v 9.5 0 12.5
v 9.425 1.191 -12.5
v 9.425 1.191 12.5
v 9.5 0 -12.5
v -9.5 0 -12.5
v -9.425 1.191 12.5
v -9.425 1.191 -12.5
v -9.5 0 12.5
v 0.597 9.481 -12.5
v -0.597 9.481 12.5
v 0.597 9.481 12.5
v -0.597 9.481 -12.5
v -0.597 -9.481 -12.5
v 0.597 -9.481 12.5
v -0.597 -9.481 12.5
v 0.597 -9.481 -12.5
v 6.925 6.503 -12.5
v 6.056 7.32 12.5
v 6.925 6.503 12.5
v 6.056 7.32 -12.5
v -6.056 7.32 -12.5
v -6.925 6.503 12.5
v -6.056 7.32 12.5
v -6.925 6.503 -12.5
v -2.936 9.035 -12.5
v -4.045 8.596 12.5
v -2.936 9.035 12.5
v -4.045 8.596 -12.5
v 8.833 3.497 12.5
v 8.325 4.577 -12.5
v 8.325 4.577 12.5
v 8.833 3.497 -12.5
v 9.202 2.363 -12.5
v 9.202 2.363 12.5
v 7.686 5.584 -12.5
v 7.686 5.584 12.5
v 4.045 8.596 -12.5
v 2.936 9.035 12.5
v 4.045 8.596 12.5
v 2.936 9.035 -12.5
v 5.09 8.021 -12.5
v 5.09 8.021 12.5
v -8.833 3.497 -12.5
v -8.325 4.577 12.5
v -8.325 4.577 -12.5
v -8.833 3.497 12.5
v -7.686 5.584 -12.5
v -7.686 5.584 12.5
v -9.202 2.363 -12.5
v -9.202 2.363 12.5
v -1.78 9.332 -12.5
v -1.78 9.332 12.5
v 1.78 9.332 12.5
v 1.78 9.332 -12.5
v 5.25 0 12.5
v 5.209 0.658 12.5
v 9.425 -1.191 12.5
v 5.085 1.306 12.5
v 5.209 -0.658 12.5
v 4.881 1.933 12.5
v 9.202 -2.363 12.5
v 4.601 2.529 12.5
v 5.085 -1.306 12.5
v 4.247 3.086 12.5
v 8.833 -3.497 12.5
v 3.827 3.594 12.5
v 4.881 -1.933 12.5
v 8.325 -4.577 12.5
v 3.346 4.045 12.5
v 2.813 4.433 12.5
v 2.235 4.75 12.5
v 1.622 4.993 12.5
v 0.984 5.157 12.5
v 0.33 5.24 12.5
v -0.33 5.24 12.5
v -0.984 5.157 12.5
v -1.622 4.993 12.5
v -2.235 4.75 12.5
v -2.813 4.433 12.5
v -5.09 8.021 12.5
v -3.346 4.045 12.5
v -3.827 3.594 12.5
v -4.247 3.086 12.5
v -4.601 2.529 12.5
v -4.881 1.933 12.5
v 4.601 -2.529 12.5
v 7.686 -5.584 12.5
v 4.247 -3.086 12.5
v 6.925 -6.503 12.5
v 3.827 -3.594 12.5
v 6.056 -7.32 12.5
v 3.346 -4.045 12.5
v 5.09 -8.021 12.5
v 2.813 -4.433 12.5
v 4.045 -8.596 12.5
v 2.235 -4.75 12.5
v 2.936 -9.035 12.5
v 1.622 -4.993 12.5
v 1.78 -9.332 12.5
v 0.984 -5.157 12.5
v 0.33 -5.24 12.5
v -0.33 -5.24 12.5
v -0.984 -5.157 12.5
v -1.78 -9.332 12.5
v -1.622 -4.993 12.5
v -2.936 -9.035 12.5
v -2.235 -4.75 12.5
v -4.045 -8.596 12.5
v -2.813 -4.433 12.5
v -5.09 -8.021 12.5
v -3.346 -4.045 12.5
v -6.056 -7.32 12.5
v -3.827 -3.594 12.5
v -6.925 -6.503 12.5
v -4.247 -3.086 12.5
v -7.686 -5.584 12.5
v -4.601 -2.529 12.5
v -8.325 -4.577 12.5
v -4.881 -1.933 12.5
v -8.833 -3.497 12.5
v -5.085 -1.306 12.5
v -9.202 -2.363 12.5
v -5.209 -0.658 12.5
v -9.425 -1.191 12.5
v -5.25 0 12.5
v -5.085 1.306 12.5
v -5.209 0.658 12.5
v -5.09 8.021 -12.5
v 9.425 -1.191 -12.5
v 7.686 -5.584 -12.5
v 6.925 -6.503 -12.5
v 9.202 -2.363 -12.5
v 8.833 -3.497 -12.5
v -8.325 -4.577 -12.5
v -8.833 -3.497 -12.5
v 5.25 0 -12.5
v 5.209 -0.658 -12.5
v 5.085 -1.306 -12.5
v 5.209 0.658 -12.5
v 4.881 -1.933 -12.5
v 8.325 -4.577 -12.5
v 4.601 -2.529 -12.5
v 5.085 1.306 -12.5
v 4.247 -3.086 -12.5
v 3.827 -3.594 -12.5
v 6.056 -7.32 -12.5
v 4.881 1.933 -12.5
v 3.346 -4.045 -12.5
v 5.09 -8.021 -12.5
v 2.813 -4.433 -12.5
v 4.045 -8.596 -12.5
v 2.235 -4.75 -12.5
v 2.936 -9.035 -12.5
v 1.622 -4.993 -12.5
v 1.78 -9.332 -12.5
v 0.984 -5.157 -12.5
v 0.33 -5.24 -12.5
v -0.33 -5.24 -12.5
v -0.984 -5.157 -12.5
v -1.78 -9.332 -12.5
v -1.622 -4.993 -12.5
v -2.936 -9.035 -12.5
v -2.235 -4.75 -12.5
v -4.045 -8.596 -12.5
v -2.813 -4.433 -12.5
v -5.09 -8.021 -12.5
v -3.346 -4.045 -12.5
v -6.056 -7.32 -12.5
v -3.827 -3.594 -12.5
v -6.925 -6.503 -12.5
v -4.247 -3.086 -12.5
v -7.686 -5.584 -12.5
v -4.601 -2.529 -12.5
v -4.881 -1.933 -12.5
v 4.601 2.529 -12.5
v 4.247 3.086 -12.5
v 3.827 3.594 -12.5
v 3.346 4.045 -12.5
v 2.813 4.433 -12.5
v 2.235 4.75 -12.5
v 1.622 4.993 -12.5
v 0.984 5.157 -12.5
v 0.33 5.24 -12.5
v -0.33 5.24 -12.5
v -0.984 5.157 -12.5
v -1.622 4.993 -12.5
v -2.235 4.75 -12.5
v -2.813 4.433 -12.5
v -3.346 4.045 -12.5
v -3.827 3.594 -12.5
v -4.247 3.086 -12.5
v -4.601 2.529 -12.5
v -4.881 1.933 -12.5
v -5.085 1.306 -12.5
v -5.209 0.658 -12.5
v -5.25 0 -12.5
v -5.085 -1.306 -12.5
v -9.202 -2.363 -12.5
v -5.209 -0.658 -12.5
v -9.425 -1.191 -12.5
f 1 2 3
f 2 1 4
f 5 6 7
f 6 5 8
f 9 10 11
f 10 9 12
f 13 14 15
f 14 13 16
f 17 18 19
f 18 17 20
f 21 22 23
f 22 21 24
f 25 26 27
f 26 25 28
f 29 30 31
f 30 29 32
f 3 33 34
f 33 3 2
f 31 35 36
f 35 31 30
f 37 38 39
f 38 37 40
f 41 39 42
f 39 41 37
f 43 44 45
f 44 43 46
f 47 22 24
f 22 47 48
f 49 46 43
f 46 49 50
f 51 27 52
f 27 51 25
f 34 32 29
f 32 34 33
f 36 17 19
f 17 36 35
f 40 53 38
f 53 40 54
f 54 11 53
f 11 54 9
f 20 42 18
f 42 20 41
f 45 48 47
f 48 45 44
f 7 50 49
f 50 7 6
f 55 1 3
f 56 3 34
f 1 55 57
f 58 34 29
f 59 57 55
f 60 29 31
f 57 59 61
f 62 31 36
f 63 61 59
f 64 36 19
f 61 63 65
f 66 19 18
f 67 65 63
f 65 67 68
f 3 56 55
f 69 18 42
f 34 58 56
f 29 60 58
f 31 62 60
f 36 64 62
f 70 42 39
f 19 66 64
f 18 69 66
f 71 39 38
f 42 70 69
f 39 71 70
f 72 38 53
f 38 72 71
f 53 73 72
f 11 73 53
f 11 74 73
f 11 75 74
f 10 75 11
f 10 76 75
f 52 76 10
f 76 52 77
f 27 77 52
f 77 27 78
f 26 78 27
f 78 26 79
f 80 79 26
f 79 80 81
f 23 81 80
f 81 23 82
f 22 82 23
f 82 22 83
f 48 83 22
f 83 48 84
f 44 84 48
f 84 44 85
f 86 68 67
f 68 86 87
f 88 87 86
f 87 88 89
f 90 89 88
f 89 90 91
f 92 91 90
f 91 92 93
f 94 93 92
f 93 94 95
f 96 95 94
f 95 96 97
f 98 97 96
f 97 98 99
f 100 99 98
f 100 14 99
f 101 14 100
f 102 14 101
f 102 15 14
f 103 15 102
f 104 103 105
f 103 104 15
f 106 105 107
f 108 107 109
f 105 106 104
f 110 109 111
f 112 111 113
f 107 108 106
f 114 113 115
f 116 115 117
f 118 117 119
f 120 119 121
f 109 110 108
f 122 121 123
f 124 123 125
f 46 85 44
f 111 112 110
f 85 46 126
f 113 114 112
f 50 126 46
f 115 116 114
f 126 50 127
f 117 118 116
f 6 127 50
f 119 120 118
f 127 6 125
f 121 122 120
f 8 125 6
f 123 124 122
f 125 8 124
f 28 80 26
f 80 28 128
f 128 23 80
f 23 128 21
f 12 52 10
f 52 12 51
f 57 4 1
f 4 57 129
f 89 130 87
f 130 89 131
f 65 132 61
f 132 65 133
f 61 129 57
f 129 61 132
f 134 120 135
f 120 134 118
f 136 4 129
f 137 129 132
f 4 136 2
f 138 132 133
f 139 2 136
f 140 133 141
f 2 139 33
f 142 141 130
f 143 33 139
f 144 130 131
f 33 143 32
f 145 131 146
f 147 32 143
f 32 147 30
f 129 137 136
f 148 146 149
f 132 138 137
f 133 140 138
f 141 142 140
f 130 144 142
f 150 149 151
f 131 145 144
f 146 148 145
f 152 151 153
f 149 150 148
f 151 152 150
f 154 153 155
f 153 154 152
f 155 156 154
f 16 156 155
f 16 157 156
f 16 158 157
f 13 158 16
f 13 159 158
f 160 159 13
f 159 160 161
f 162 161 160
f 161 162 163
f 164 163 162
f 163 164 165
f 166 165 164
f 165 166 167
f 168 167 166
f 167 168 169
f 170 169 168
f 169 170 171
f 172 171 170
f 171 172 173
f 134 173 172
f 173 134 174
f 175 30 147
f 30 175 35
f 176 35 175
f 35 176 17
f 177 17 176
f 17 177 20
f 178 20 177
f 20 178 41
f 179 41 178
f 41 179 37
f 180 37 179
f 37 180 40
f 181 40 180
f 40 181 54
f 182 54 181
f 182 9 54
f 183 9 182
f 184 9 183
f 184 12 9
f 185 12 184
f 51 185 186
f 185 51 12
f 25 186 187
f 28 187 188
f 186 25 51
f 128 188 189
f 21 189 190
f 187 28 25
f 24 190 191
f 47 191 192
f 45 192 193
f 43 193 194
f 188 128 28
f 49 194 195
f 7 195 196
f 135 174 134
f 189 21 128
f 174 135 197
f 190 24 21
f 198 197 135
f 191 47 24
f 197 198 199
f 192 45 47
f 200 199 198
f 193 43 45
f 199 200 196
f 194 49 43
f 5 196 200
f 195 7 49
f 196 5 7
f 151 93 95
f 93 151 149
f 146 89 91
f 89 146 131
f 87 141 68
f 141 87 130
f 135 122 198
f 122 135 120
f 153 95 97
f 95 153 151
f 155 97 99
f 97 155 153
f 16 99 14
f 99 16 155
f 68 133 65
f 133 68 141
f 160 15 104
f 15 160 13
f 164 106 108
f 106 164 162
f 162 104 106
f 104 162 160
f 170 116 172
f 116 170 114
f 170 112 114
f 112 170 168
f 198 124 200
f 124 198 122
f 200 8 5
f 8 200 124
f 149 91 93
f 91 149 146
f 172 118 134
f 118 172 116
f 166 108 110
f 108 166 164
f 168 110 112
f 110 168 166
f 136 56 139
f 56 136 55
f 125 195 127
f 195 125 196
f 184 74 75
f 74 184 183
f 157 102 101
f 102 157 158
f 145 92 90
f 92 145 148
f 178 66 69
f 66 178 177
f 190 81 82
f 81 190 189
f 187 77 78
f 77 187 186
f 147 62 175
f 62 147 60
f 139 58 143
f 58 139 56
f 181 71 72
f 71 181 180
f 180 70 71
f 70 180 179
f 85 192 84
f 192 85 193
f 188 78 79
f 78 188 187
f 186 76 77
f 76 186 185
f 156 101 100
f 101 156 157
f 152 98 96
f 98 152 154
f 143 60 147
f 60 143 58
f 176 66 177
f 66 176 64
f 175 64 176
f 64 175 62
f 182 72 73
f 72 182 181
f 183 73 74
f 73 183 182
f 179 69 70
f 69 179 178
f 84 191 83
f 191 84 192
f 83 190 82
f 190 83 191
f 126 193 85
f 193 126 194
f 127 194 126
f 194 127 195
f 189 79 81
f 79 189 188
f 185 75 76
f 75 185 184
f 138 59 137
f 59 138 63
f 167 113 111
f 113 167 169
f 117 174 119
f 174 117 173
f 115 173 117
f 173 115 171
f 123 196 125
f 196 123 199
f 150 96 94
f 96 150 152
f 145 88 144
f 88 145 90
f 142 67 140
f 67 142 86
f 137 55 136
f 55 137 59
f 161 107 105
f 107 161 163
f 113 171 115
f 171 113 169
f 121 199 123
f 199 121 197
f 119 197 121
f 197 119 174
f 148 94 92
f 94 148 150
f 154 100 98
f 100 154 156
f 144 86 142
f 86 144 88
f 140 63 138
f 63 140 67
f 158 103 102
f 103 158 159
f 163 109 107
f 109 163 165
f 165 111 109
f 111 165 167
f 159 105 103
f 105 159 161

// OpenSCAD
$fn = 50;


difference() {
	union() {
		translate(v = [0, 0, -12.5000000000]) {
			cylinder(h = 25, r = 9.5000000000);
		}
	}
	union() {
		translate(v = [0, 0, -100.0000000000]) {
			cylinder(h = 200, r = 5.2500000000);
		}
	}
}
